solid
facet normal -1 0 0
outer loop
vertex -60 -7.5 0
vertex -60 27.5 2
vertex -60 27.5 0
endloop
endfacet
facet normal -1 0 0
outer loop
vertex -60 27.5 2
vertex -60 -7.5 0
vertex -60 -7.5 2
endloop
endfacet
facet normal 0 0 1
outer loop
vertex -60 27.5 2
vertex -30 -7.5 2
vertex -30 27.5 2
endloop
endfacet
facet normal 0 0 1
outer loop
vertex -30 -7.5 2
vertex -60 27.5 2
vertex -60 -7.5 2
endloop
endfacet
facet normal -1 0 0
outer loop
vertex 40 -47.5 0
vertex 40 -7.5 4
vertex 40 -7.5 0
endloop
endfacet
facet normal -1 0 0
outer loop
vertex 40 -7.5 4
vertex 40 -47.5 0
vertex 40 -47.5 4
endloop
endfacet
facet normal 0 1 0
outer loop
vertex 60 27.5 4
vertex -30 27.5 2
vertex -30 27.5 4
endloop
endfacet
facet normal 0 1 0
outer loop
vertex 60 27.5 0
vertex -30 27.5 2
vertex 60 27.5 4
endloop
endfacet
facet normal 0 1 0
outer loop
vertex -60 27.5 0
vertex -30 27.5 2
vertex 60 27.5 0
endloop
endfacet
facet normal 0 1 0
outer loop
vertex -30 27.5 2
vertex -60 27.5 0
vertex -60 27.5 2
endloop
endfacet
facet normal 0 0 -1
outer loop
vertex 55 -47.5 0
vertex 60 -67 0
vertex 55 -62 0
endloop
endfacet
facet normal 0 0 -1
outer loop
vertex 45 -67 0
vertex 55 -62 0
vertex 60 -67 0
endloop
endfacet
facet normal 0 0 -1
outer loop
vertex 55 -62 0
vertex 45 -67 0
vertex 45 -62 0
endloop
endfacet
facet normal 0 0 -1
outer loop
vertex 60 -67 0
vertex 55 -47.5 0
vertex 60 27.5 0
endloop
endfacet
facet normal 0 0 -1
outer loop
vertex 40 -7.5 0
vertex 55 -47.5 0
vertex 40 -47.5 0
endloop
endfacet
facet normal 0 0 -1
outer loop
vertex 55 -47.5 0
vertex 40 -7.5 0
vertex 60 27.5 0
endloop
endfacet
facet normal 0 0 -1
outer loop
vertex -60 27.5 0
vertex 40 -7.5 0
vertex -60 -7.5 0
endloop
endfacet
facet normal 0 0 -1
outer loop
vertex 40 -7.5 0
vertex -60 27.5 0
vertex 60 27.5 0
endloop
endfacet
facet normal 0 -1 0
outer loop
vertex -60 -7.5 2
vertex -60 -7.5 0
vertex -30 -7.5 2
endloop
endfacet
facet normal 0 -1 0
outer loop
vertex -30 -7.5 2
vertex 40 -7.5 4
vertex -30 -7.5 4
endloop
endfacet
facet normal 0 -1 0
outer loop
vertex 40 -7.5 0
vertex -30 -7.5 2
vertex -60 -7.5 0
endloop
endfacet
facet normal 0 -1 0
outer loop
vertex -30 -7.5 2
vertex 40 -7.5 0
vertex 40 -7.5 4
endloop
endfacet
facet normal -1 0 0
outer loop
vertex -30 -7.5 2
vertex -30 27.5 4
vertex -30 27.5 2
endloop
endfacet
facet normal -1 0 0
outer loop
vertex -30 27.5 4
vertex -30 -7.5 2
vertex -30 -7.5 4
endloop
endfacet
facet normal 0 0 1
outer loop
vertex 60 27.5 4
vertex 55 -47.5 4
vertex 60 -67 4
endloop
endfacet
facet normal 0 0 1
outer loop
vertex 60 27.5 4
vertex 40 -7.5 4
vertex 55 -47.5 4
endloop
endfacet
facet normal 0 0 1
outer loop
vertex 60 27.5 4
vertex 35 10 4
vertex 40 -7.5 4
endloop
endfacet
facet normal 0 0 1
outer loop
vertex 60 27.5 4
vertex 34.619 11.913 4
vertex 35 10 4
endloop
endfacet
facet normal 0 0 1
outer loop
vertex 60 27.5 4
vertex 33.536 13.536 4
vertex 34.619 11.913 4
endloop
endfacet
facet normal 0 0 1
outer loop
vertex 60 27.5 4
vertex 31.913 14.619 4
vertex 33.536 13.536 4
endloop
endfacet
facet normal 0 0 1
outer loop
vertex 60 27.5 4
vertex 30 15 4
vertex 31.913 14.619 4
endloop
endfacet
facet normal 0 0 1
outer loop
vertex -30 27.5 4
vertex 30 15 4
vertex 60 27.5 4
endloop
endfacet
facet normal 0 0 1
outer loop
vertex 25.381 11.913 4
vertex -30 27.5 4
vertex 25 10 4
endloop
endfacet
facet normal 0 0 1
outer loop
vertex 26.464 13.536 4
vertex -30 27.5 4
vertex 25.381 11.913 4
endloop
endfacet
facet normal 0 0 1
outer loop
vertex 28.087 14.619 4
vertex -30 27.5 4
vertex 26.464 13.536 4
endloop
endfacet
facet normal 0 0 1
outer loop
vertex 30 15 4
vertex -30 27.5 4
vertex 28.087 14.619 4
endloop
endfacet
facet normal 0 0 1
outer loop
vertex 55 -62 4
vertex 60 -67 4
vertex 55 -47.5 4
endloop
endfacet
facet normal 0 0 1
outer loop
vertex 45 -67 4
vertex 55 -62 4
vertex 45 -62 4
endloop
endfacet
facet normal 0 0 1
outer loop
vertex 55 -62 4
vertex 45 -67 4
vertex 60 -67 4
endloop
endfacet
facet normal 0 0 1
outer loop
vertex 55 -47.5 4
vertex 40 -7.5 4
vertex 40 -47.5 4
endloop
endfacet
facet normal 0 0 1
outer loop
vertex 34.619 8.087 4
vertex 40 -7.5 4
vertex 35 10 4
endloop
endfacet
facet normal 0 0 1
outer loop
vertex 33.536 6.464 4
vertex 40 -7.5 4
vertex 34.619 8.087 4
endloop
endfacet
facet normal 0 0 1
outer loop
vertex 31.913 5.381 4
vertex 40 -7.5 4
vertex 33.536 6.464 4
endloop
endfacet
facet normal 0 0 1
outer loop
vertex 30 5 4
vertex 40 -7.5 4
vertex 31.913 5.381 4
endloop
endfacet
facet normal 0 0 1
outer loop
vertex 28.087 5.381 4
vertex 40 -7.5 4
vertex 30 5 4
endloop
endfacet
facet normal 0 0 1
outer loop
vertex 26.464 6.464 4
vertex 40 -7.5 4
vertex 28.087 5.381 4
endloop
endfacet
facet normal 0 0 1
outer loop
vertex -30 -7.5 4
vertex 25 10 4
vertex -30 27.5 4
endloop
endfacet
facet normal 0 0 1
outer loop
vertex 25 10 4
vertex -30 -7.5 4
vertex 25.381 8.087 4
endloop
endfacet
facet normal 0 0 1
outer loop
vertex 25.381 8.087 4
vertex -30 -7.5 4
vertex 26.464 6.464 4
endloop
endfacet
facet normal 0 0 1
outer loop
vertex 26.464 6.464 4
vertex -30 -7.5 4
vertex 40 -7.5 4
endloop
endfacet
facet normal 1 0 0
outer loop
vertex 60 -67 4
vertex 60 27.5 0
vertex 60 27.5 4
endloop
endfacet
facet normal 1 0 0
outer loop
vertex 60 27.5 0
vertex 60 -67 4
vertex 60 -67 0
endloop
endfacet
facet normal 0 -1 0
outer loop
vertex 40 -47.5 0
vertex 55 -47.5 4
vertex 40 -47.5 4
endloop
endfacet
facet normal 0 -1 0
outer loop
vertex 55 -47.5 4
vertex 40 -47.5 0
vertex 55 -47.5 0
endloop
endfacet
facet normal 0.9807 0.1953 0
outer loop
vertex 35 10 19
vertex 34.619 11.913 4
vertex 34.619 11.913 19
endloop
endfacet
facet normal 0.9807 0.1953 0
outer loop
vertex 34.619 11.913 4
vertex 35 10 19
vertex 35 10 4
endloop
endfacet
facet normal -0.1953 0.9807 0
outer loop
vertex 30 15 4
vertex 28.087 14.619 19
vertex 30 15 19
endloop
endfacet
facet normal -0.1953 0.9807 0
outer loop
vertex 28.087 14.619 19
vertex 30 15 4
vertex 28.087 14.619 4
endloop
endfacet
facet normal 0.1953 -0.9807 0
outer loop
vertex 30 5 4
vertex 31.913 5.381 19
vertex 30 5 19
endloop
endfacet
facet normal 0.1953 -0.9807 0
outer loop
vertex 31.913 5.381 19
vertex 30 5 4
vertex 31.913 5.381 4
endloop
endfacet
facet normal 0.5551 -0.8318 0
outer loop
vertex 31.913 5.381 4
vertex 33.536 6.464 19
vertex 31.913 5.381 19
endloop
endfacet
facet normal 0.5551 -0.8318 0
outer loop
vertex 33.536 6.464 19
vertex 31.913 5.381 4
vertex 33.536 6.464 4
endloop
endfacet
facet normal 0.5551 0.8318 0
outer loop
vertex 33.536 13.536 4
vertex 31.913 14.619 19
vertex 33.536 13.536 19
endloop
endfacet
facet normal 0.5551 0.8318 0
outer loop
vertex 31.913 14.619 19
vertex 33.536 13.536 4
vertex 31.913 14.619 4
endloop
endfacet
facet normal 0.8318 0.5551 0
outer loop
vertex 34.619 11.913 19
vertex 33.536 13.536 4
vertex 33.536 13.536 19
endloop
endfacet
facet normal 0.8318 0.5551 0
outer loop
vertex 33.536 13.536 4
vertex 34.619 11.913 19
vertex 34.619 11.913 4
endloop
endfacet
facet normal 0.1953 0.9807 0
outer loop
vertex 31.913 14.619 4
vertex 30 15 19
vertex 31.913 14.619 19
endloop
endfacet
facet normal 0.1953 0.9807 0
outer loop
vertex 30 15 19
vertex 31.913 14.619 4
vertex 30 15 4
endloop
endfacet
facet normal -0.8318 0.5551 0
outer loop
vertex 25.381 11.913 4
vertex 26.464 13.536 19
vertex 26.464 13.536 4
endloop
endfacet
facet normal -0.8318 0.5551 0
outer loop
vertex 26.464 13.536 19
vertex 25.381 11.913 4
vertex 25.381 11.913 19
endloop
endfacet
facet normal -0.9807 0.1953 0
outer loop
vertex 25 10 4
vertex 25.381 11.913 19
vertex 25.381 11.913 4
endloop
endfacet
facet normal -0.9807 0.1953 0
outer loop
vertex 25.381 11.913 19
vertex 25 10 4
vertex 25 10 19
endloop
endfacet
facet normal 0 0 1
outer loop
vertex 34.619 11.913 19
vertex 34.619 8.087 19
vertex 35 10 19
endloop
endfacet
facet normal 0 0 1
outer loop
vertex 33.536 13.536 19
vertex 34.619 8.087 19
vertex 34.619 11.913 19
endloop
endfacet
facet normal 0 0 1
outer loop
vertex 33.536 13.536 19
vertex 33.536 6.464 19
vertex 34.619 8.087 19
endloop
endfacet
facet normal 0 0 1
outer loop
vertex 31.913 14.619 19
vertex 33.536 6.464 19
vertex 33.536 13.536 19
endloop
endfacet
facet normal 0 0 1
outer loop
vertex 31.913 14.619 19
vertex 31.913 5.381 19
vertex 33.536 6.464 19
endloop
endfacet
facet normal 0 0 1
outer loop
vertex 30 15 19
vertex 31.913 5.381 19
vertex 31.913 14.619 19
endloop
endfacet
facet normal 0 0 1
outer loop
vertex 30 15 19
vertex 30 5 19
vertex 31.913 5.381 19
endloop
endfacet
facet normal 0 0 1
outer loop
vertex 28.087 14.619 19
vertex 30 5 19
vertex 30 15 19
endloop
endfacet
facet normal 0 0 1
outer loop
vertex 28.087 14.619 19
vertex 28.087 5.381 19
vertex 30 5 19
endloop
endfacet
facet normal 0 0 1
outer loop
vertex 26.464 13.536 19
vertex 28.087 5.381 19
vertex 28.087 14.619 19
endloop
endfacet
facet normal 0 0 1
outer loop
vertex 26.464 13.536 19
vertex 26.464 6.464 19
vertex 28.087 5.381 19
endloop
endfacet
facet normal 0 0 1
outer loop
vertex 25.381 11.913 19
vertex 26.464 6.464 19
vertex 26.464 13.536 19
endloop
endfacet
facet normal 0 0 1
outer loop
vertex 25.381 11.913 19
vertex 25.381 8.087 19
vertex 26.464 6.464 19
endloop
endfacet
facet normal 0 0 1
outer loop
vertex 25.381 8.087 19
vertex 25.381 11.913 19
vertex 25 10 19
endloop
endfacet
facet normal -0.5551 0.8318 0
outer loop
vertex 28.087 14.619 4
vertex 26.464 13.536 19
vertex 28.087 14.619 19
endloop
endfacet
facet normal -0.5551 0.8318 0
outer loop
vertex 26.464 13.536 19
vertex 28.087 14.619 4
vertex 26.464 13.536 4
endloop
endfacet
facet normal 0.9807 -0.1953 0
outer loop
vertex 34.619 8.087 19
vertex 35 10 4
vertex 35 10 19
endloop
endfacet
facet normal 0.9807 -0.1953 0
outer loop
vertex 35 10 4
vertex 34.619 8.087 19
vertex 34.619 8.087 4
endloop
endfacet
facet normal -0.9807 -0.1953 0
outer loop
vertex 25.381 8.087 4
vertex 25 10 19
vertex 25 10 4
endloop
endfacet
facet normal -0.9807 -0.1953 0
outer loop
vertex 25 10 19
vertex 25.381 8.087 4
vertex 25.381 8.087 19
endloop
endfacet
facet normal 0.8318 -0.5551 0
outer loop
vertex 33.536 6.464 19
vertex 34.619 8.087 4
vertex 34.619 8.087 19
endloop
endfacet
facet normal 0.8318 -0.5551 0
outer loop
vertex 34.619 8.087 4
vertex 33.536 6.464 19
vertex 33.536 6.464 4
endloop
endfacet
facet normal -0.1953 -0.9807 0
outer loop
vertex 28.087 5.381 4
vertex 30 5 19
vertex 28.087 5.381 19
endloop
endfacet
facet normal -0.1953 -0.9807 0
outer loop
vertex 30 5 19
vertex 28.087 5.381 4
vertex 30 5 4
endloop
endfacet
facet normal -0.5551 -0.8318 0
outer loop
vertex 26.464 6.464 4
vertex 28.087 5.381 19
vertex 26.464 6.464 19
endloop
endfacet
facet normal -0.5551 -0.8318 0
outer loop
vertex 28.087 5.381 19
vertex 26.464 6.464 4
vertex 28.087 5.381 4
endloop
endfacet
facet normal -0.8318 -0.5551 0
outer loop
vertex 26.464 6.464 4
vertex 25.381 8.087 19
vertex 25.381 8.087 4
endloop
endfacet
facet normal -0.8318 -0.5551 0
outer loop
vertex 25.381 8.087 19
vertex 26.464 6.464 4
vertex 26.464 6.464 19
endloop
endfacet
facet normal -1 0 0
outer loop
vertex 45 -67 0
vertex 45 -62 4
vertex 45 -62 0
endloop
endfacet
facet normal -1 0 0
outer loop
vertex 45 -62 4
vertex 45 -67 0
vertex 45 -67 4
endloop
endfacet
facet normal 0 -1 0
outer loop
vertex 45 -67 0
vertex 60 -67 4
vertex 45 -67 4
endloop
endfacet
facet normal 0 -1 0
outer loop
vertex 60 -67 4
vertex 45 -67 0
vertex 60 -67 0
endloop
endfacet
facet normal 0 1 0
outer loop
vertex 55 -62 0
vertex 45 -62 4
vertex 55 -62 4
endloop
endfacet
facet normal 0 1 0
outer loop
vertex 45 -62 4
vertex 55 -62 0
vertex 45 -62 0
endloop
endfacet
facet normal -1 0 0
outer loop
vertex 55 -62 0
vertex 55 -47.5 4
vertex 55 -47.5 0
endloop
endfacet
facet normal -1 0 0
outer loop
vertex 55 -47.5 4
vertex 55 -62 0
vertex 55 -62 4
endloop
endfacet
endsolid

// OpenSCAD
thick = 4;
brodit_foot_width = 50;
brodit_foot_height = 42;
corner = 5.5;
hole_diam = 4;
bar_height = 35;
bar_width = 100;
overlap = 30;
lip_width = 20;
lip_height = bar_height + 40;
x_shift = 10;
y_shift = -10;
knob = 10;
knob_height = 15;
hook_width = 10;
hook_height = 20;

translate([-x_shift, -y_shift, 0])
{
    translate([-(bar_width/2),-(bar_height/2),0])
    {
        cube(size=[bar_width,bar_height,thick/2]);
        
    }
    
    // Horizontale onderkant.
    translate([-((bar_width/2)-overlap),-(bar_height/2),thick/2])
    {
        cube(size=[bar_width-overlap,bar_height,thick/2]);
    }
        
    // Verticaal stuk.
    translate([bar_width/2, (bar_height/2) - lip_height, 0])
    {
        cube(size=[lip_width,lip_height,thick]);
    }
    
    // Drukpunt.
    translate([(bar_width/2)-10, 0, thick])
    {
        cylinder(knob_height, 
            r1 = 5, 
            r2 = 5);
    }

}

// Haak.
translate([45,-67, 0])
{
    cube(size=[15,5,thick]);
    
    translate([10,5,0])
    {
        cube(size=[5,15,thick]);
    }

}
